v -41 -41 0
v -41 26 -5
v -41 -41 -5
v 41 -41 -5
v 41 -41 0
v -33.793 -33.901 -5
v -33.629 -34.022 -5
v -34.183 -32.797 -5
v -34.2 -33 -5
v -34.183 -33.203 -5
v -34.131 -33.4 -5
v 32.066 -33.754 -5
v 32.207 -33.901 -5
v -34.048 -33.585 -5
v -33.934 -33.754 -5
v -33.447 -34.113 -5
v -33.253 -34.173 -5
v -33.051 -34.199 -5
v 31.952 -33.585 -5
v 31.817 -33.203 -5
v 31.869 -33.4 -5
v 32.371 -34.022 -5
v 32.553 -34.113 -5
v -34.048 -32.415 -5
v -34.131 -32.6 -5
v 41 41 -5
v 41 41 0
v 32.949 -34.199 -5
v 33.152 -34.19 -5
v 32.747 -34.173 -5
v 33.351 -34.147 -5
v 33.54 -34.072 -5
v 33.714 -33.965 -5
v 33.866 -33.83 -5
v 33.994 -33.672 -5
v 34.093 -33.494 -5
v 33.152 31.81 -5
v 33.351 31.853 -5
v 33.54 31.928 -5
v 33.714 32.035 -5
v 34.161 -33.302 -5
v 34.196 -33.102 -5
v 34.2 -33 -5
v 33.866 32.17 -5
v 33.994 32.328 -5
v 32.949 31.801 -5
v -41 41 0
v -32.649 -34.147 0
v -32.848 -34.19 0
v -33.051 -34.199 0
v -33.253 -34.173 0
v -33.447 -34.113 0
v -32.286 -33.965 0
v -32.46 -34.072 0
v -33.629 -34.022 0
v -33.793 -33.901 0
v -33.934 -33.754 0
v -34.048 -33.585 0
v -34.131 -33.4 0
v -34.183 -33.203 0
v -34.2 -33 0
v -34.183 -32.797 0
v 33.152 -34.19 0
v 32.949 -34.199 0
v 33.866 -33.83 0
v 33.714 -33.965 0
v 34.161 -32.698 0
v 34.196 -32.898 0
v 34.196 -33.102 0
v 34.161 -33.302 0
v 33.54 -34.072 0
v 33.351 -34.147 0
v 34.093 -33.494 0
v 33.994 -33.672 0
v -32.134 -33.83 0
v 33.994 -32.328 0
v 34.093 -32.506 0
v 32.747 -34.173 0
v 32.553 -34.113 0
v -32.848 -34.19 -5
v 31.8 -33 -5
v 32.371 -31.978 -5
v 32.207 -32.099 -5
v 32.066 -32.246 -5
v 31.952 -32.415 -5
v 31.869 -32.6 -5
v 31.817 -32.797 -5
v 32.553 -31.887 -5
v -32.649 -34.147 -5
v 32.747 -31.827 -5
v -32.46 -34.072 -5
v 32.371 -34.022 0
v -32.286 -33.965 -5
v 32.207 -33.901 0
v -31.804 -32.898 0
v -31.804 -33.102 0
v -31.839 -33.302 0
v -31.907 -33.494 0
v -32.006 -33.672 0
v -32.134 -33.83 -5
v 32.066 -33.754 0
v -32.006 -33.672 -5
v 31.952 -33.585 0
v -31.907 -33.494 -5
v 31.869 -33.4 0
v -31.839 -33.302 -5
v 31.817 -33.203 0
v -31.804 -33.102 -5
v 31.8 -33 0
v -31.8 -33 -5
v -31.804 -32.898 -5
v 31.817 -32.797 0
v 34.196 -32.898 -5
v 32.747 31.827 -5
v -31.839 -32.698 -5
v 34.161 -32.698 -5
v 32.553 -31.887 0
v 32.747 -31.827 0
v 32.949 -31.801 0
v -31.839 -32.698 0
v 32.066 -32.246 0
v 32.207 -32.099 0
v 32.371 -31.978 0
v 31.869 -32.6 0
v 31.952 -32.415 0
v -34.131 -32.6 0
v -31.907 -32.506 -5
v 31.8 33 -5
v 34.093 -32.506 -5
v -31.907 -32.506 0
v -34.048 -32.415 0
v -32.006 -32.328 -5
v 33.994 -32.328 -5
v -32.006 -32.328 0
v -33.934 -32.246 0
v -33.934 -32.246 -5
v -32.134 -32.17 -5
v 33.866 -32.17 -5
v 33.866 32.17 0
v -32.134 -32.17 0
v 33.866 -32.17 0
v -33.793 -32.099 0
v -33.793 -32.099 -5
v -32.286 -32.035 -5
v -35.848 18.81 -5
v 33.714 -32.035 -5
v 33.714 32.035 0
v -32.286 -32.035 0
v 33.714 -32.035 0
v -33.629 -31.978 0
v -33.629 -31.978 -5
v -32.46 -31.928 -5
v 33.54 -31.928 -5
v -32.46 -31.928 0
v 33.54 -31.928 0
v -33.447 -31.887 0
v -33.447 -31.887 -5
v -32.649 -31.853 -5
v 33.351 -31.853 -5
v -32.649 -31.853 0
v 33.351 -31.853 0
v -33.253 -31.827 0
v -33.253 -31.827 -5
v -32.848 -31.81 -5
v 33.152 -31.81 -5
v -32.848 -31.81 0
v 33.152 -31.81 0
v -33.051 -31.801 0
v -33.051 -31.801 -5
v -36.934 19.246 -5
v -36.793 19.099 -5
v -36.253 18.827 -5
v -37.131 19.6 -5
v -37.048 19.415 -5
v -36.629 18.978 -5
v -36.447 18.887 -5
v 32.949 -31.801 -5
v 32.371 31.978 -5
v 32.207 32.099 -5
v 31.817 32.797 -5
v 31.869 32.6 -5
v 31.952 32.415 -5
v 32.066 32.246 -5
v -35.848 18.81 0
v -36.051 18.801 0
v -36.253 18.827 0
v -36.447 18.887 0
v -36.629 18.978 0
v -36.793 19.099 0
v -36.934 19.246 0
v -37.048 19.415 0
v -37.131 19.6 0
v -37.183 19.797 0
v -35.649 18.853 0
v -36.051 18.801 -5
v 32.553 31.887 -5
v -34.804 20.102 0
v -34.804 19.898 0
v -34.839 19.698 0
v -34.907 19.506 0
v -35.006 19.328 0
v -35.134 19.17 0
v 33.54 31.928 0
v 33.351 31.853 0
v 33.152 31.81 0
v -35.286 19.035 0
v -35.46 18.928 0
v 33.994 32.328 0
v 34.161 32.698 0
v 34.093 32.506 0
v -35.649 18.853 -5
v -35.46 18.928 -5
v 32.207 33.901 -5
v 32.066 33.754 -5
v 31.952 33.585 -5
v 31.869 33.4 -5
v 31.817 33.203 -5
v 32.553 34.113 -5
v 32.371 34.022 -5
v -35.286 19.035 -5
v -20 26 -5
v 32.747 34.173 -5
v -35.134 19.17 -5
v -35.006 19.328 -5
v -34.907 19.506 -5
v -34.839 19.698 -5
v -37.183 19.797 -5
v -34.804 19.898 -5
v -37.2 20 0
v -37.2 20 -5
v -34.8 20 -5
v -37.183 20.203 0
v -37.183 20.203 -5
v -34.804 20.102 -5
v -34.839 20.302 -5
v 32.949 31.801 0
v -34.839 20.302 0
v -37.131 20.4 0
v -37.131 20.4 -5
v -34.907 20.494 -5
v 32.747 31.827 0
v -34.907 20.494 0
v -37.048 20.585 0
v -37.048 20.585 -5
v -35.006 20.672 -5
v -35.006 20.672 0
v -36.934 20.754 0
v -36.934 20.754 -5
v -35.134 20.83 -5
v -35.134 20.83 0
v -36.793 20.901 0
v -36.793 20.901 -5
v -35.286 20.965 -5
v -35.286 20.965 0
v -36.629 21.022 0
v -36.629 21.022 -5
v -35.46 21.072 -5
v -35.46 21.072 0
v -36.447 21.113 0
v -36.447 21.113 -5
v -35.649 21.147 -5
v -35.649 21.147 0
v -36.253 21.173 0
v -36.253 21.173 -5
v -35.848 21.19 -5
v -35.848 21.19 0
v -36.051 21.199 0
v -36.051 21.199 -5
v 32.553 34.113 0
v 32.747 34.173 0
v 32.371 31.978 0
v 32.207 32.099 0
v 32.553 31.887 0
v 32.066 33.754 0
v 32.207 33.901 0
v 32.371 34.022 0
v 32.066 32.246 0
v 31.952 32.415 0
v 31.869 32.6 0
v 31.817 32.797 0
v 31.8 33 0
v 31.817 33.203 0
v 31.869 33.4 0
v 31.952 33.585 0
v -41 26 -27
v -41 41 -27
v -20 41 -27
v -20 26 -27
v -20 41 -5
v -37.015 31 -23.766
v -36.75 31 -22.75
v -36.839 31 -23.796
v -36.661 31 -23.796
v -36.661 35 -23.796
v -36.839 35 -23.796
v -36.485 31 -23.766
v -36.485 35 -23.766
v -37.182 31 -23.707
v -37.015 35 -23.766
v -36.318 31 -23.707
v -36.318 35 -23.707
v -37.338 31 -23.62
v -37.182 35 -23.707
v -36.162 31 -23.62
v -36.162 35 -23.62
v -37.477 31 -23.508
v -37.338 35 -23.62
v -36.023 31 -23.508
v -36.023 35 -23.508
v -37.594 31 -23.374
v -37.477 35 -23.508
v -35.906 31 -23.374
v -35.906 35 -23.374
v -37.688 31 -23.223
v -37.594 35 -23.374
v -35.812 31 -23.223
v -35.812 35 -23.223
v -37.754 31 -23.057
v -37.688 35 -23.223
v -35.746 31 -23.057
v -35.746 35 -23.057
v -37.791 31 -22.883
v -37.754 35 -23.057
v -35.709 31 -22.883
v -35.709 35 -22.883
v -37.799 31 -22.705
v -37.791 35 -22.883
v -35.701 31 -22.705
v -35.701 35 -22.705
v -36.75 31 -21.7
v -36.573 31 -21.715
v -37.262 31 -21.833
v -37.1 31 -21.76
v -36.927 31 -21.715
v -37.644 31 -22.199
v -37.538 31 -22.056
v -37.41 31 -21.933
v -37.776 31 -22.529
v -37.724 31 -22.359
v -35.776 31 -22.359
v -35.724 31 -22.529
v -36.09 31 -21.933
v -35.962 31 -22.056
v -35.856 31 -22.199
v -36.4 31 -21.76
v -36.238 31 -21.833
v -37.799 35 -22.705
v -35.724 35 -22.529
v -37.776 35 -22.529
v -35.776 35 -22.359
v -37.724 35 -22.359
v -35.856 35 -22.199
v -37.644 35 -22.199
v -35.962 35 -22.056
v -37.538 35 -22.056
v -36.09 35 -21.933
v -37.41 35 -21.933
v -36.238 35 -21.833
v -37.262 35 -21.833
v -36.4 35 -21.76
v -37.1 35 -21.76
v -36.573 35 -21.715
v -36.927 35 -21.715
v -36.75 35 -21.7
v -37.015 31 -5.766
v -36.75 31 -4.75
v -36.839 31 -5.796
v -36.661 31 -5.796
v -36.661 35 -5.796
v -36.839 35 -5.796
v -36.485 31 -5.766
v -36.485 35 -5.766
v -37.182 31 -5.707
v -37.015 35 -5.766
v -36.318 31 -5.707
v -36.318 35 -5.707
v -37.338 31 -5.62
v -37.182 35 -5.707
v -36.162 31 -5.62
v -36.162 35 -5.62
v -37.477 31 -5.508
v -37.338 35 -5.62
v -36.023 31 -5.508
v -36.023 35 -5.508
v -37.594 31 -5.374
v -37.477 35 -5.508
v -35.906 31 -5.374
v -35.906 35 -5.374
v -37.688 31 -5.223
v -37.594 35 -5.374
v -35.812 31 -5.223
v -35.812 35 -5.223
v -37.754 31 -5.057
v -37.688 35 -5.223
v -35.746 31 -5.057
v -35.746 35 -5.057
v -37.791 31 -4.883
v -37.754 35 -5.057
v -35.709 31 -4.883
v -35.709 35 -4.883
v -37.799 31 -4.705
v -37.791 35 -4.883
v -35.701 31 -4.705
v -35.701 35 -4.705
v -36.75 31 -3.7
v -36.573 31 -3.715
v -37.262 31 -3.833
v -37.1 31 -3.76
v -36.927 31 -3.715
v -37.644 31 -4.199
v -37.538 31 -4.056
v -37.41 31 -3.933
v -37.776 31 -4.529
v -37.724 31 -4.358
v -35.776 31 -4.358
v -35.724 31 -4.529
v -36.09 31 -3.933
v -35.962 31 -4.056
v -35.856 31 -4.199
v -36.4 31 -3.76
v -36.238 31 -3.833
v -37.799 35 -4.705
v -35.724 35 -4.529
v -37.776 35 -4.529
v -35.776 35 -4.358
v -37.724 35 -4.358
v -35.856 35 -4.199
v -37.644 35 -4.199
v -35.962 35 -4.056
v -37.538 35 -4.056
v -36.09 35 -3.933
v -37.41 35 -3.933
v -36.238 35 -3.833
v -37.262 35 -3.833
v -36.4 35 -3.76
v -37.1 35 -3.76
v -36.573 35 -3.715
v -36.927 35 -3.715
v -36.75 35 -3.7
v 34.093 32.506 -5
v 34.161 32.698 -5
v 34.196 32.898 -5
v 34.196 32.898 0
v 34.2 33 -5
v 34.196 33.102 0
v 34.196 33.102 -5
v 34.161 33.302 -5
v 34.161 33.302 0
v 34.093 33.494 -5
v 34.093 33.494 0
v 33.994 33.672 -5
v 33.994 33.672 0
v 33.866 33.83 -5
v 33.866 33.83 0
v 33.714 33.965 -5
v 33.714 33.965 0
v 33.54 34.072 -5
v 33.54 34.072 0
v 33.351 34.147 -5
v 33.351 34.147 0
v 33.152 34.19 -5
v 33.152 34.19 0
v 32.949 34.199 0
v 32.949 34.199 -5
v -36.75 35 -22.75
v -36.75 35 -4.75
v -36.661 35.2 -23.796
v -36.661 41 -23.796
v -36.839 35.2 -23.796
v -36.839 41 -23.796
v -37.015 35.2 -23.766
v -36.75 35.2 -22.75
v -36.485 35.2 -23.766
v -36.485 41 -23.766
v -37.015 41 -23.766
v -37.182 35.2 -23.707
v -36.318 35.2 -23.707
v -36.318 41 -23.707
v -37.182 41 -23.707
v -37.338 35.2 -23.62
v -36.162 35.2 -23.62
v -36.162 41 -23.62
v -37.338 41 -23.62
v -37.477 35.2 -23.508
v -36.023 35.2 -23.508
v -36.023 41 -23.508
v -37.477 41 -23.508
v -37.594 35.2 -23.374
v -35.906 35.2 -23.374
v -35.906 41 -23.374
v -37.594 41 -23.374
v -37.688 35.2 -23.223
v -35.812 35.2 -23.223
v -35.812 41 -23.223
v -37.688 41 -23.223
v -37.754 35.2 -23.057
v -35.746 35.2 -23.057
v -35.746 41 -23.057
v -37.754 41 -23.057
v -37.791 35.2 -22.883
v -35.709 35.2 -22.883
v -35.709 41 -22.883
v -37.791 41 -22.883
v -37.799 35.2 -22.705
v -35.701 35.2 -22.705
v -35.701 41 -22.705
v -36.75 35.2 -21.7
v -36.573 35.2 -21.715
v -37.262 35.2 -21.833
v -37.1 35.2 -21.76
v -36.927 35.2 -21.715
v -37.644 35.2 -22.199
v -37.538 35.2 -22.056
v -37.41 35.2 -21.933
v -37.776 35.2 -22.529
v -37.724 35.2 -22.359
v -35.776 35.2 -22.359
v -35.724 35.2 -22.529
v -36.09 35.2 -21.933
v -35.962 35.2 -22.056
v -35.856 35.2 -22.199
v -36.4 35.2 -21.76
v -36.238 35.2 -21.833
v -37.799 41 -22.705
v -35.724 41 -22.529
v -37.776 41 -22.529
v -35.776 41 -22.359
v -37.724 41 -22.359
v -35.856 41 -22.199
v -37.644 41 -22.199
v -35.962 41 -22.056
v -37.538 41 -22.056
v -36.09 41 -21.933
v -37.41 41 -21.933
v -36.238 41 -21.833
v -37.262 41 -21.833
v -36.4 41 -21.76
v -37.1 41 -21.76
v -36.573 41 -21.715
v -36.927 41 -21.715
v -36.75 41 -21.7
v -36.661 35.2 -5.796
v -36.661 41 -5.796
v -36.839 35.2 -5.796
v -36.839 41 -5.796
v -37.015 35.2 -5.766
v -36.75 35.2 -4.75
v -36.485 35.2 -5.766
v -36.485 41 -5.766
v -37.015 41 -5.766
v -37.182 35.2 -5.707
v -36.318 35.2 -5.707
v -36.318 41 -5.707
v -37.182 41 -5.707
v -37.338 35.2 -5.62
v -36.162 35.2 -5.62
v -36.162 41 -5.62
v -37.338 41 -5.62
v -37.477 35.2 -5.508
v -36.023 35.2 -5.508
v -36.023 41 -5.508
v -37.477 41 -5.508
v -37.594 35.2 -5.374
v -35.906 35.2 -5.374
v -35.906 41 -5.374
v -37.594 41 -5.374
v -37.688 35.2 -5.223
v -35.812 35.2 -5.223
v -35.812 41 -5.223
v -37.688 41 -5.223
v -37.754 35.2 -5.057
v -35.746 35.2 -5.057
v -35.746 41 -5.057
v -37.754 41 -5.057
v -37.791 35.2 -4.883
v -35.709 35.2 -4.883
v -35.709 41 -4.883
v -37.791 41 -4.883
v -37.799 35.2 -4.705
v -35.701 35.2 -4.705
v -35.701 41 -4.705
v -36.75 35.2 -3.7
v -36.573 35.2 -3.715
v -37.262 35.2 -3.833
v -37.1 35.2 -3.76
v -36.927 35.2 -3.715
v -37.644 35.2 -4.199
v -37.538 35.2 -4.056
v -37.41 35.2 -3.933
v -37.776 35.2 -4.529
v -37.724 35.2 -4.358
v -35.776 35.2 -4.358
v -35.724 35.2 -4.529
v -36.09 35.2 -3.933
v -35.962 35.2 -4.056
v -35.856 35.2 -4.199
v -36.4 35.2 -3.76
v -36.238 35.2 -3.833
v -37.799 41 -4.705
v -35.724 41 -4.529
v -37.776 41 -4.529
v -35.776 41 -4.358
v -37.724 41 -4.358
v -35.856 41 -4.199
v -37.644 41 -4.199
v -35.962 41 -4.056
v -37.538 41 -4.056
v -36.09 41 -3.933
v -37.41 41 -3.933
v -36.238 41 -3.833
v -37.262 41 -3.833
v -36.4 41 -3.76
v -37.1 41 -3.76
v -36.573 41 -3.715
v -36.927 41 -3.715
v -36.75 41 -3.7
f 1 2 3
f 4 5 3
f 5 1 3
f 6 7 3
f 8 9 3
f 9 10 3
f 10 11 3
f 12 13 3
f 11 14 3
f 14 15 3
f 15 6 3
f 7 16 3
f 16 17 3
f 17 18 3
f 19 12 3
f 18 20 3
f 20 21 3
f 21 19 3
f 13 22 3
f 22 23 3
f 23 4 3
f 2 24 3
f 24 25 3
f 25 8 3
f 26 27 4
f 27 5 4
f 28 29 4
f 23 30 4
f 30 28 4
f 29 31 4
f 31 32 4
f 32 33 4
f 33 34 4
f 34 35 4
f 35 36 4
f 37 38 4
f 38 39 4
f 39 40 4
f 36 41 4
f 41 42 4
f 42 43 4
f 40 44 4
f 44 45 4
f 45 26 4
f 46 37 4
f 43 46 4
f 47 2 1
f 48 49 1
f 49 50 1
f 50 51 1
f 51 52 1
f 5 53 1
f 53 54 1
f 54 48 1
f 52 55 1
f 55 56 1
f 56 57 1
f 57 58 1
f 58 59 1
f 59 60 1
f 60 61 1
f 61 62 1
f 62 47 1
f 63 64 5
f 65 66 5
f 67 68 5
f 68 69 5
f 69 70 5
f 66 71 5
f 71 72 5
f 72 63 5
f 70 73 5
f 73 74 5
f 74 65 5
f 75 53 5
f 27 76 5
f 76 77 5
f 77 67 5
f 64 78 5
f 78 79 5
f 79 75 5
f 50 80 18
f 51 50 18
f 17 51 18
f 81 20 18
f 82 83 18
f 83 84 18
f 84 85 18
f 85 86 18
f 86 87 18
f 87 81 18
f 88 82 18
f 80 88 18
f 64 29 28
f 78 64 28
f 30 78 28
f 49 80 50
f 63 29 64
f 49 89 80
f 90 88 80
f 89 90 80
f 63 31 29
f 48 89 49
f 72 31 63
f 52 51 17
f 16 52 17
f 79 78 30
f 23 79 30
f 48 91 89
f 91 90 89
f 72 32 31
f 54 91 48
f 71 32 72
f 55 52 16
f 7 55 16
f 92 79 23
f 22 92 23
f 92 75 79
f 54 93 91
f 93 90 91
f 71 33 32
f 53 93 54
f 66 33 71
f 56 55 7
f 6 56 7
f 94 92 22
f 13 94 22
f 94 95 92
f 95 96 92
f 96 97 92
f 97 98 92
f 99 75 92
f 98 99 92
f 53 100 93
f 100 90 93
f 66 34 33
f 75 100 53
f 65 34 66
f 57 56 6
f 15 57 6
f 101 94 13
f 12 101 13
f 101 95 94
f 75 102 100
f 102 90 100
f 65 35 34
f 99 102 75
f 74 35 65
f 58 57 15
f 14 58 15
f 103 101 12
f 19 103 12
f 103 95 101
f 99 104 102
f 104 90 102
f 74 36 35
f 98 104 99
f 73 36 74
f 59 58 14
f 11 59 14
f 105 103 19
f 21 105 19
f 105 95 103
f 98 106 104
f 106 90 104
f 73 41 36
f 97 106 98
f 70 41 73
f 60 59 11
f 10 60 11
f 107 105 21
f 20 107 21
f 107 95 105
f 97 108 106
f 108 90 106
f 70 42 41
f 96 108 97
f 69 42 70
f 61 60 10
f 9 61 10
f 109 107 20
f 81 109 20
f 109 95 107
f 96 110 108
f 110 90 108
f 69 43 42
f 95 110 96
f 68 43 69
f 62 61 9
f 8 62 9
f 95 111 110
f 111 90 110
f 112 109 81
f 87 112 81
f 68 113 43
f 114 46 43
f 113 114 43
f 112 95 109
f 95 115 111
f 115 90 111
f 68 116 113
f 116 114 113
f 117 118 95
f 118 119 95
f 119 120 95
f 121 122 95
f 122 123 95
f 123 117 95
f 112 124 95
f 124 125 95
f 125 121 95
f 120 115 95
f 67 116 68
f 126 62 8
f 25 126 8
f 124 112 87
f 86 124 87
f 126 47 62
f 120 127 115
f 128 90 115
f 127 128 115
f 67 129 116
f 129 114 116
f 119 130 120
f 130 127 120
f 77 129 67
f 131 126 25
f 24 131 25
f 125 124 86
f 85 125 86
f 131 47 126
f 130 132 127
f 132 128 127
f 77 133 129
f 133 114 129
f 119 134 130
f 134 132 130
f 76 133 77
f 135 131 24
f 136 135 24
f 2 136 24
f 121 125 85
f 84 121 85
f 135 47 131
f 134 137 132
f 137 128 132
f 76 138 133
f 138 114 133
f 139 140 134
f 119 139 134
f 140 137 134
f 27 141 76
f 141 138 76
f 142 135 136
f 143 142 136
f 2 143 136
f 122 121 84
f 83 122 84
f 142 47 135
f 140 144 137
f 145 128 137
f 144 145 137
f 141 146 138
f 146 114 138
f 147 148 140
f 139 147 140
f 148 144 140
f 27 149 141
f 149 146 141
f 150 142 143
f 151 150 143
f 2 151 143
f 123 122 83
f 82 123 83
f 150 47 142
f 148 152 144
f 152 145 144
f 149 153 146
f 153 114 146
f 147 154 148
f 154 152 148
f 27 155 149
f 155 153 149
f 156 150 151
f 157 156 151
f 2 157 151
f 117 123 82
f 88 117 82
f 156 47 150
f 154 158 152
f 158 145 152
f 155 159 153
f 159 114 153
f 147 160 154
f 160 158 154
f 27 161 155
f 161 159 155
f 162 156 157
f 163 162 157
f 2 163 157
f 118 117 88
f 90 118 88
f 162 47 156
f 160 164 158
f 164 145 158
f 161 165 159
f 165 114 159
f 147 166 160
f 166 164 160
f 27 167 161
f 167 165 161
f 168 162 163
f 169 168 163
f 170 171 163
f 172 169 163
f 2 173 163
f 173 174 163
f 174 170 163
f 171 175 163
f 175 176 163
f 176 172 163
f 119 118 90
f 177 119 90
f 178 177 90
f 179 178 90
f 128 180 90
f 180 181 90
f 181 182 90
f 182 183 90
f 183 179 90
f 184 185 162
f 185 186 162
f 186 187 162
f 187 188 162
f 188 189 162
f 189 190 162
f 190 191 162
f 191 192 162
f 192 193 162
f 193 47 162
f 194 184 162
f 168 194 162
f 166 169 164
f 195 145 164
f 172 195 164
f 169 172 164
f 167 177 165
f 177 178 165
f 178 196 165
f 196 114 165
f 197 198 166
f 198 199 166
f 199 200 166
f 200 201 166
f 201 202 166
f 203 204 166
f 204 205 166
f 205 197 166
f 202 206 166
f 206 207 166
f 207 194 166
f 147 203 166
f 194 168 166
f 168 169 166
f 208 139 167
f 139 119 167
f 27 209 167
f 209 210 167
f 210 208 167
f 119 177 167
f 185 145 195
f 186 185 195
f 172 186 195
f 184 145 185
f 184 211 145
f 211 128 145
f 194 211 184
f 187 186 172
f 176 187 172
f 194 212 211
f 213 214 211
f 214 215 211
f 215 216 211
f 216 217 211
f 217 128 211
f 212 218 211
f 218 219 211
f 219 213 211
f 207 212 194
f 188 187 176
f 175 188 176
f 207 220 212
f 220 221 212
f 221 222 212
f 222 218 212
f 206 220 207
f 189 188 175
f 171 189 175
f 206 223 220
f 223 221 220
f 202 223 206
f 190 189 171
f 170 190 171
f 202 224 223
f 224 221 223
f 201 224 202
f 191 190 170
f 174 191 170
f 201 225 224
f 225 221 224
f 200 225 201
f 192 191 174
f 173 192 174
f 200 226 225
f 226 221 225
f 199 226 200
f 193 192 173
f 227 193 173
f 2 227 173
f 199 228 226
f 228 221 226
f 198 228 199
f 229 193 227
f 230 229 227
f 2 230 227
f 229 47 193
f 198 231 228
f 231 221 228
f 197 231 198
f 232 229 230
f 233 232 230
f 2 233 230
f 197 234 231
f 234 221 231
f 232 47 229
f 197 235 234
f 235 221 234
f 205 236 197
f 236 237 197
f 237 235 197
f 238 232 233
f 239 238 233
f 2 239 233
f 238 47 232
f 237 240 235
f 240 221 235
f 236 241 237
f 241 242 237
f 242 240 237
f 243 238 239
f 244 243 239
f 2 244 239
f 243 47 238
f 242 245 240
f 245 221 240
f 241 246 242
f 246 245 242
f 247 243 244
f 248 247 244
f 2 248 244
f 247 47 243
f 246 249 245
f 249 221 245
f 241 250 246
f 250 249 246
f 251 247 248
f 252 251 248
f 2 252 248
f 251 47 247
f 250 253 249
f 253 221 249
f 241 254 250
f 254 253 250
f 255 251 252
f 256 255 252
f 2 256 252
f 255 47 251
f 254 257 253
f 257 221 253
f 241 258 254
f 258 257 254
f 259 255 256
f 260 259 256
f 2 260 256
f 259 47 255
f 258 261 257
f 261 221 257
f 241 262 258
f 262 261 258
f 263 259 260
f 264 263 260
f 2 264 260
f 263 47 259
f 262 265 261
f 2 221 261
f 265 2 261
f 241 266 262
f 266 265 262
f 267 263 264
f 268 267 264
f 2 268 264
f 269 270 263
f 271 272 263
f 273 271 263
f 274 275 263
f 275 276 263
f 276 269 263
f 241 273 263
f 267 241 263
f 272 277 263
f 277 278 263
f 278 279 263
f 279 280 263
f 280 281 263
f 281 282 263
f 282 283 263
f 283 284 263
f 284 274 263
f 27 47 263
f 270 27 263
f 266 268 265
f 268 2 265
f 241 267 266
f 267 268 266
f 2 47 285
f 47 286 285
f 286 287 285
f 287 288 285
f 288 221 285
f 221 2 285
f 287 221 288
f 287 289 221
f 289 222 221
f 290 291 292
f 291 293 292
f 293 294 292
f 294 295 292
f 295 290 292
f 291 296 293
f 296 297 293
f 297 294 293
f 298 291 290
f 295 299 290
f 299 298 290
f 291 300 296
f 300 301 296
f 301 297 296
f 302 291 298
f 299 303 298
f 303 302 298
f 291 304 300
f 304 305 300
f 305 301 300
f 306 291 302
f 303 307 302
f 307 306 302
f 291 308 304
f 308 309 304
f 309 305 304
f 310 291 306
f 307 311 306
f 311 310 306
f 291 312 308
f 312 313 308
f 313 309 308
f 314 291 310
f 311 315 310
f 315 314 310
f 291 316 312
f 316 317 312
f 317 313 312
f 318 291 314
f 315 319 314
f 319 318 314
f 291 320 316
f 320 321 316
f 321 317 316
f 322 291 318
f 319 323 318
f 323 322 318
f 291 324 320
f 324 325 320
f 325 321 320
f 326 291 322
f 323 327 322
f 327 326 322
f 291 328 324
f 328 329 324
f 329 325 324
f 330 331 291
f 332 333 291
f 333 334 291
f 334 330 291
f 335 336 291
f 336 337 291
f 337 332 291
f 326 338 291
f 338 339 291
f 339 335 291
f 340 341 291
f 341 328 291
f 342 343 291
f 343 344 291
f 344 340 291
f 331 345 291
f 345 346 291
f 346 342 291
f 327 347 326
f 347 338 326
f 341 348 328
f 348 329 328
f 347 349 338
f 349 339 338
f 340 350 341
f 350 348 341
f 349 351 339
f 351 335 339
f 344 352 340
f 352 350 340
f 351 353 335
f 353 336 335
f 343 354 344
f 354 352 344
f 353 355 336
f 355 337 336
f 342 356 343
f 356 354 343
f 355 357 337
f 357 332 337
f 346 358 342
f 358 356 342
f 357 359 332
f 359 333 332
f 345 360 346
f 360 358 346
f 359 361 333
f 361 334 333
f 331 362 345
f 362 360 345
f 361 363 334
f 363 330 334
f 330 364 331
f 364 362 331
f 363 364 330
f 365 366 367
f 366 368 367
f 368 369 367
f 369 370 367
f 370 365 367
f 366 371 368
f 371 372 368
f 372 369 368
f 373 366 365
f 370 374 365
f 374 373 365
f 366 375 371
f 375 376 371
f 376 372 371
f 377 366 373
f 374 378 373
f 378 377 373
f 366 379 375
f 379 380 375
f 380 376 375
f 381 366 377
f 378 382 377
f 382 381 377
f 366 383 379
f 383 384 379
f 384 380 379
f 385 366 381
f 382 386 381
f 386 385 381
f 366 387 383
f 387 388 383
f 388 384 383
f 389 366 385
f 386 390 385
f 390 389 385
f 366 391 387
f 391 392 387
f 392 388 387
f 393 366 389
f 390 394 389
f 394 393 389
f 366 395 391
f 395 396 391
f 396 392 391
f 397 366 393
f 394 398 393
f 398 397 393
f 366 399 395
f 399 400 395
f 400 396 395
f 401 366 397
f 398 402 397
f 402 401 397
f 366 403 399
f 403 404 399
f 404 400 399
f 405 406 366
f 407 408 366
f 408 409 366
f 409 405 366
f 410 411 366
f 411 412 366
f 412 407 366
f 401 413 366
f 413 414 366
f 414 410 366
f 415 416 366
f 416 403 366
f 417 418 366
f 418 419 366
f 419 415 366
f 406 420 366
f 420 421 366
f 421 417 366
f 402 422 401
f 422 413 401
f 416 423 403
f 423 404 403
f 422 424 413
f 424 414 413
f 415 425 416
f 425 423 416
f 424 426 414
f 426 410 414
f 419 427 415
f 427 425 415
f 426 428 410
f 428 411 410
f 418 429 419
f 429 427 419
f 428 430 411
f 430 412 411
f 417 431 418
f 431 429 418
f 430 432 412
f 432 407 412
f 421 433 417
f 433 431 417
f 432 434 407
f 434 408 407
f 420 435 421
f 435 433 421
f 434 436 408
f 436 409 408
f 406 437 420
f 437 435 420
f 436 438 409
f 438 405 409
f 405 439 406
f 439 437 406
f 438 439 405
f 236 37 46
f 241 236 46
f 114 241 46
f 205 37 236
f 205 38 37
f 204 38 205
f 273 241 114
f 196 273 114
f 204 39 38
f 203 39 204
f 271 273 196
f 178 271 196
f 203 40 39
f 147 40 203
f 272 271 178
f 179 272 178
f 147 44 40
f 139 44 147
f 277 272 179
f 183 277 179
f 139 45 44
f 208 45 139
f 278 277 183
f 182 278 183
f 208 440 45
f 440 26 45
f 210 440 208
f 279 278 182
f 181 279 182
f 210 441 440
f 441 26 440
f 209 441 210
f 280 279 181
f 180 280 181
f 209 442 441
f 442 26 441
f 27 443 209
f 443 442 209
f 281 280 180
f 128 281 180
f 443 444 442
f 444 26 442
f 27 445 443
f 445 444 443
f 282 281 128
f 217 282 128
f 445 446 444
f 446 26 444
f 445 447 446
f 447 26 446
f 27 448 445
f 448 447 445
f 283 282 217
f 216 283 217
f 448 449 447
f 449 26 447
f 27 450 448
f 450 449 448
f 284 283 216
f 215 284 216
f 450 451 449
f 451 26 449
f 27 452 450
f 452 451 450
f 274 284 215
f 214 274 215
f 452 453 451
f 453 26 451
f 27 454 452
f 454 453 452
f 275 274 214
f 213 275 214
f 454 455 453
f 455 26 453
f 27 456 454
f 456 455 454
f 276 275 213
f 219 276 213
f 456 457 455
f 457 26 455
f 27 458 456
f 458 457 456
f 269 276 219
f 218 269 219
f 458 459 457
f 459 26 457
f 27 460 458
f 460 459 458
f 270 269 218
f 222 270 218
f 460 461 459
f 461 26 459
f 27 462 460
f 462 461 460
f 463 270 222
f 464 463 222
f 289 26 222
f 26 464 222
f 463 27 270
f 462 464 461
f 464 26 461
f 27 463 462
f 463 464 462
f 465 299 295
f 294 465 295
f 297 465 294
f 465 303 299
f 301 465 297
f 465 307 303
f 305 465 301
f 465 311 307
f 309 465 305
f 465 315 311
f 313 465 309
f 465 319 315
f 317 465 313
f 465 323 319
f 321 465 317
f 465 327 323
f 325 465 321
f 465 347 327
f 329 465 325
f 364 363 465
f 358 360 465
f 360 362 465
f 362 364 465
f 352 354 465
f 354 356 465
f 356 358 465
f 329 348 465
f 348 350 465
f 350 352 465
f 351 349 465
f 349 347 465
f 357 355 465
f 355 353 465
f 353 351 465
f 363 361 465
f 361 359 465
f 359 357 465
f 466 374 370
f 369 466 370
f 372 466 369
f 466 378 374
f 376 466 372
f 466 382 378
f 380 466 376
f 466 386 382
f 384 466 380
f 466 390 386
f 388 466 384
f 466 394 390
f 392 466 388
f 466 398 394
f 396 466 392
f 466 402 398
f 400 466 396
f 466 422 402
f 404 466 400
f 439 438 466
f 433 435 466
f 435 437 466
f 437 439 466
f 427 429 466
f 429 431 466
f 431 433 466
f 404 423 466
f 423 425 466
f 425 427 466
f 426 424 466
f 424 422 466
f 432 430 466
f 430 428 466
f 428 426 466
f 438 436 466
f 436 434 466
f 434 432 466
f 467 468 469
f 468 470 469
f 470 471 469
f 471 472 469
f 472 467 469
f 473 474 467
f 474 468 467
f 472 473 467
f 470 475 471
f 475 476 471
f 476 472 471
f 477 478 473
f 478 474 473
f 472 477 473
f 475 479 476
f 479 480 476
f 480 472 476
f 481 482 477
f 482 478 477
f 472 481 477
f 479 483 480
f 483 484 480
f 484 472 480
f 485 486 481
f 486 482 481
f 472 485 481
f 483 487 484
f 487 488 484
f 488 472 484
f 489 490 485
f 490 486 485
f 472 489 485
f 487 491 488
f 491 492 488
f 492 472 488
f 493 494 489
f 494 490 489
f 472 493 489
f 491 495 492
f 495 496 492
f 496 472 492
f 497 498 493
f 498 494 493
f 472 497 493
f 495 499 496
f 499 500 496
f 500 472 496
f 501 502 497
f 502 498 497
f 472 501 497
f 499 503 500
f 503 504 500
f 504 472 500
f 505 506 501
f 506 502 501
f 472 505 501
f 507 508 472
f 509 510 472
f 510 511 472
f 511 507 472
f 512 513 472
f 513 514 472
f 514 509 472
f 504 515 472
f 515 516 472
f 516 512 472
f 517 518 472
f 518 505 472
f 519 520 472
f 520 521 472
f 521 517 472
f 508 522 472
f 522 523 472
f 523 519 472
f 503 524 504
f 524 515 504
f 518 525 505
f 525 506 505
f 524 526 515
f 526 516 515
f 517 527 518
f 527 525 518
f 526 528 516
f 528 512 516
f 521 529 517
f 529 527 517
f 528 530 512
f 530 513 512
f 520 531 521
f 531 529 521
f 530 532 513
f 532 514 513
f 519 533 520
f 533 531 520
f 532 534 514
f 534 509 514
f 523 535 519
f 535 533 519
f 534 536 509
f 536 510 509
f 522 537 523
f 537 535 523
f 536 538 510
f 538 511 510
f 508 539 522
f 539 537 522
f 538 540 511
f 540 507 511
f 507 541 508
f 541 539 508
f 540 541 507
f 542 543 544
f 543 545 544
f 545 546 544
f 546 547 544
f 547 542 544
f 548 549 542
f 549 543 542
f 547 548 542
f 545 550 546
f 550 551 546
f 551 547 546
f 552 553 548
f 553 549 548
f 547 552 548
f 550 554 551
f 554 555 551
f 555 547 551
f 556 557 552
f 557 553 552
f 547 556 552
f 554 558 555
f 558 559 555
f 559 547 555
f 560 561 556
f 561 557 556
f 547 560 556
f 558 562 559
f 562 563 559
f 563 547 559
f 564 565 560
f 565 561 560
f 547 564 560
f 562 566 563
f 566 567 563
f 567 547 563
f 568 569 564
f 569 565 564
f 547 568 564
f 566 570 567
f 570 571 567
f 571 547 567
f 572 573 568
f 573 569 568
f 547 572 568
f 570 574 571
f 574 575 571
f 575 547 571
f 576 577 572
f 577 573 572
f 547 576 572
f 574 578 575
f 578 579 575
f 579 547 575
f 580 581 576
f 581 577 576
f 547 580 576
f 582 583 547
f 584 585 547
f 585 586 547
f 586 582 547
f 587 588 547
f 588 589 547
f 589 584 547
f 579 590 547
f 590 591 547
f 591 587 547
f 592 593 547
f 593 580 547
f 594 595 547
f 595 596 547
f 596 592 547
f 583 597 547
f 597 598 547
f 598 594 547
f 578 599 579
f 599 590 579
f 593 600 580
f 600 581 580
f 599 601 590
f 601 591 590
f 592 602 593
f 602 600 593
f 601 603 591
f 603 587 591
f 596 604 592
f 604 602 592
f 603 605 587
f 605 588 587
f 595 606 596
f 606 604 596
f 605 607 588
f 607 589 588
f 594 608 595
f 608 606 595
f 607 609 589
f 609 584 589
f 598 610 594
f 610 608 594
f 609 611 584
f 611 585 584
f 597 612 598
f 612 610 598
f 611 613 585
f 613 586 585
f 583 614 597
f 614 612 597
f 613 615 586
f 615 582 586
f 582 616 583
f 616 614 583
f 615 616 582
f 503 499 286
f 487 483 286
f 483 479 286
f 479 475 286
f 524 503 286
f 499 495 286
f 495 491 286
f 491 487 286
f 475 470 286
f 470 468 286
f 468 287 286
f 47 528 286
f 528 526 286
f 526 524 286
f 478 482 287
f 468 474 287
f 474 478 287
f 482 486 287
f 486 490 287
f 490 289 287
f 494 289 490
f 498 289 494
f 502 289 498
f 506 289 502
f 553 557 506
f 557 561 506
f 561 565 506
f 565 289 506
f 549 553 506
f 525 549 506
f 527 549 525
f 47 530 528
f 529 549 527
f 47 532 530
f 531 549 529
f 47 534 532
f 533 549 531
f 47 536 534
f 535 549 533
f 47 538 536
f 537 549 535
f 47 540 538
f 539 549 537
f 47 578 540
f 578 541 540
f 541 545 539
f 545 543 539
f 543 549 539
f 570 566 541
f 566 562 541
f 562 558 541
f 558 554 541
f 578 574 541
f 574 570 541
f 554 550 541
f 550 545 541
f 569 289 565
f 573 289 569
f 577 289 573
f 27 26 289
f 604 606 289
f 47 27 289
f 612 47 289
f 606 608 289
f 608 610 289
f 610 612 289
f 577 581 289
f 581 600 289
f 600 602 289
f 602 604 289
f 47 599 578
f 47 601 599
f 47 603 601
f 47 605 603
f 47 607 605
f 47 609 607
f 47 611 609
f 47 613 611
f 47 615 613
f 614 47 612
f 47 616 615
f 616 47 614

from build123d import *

# Parameters (mm, degrees)
SKETCH_1_W           = 82
SKETCH_1_H           = 82
SKETCH_1_R           = 35.5
EXTRUDE_1_DEPTH      = 245
SKETCH_2_W           = 82
SKETCH_2_H           = 82
EXTRUDE_2_DEPTH      = 27
SKETCH_3_W           = 8
SKETCH_3_H           = 20
CUT_EXTRUDE_1_DEPTH  = 245
SKETCH_4_R           = 4
CUT_EXTRUDE_2_DEPTH  = 20
FILLET_2_R           = 3
FILLET_3_R           = 3
FILLET_4_R           = 3
FILLET_5_R           = 3
SKETCH_5_R           = 1.05
CUT_EXTRUDE_3_DEPTH  = 10
EXTRUDE_START        = 0.2
SKETCH_6_R           = 1.05
EXTRUDE_3_DEPTH      = 0.2
CUT_EXTRUDE_5_REACH  = 263.591
SKETCH_7_W           = 20
SKETCH_7_H           = 65
CUT_EXTRUDE_6_REACH  = 263.591
SKETCH_8_W           = 41
SKETCH_8_H           = 20
SKETCH_9_R           = 1.2
CUT_EXTRUDE_7_DEPTH  = 10
CUT_EXTRUDE_8_REACH  = 263.591
SKETCH_10_W          = 245
SKETCH_10_H          = 82
SKETCH_11_W          = 20
SKETCH_11_H          = 17
CUT_EXTRUDE_9_DEPTH  = 20
CUT_EXTRUDE_10_DEPTH = 2
SKETCH_13_W          = 21
SKETCH_13_H          = 22
CUT_EXTRUDE_11_DEPTH = 2


with BuildPart() as part:
    # 草圖1 → 填料-伸長1 (new body)
    with BuildSketch(Plane.XY):
        Rectangle(SKETCH_1_W, SKETCH_1_H)
        Circle(SKETCH_1_R, mode=Mode.SUBTRACT)
    extrude(amount=EXTRUDE_1_DEPTH)

    # 草圖2 → 填料-伸長2 (add)
    with BuildSketch(Plane(origin=(0, 0, 0), x_dir=(-1, 0, 0), z_dir=(0, 0, -1))):
        Rectangle(SKETCH_2_W, SKETCH_2_H)
    extrude(amount=EXTRUDE_2_DEPTH)

    # 草圖3 → 除料-伸長1 (cut)
    with BuildSketch(Plane.XY.offset(245)):
        with Locations((-37, 0)):
            Rectangle(SKETCH_3_W, SKETCH_3_H)
    extrude(amount=-CUT_EXTRUDE_1_DEPTH, mode=Mode.SUBTRACT)

    # 草圖4 → 除料-伸長2 (cut)
    with BuildSketch(Plane.XY.offset(245)):
        with Locations((-32.9, 33)):
            Circle(SKETCH_4_R)
        with Locations((33.1, 32.9)):
            Circle(SKETCH_4_R)
        with Locations((33, -33.1)):
            Circle(SKETCH_4_R)
        with Locations((-33, -33)):
            Circle(SKETCH_4_R)
    extrude(amount=-CUT_EXTRUDE_2_DEPTH, mode=Mode.SUBTRACT)

    # 圓角2
    fillet_2_edges = [part.edges().sort_by_distance(p)[0] for p in [
        (-36.9, 33, 225),
    ]]
    fillet(fillet_2_edges, radius=FILLET_2_R)

    # 圓角3
    fillet_3_edges = [part.edges().sort_by_distance(p)[0] for p in [
        (29.1, 32.9, 225),
    ]]
    fillet(fillet_3_edges, radius=FILLET_3_R)

    # 圓角4
    fillet_4_edges = [part.edges().sort_by_distance(p)[0] for p in [
        (-37, -33, 225),
    ]]
    fillet(fillet_4_edges, radius=FILLET_4_R)

    # 圓角5
    fillet_5_edges = [part.edges().sort_by_distance(p)[0] for p in [
        (29, -33.1, 225),
    ]]
    fillet(fillet_5_edges, radius=FILLET_5_R)

    # 草圖5 → 除料-伸長3 (cut)
    with BuildSketch(Plane(origin=(0, 41, 0), x_dir=(1, 0, 0), z_dir=(0, 1, 0))):
        with Locations(Location((-36.75, 22.75, 0), (0, 0, 270))):
            Circle(SKETCH_5_R)
        with Locations(Location((-36.75, 4.75, 0), (0, 0, 270))):
            Circle(SKETCH_5_R)
    extrude(amount=-CUT_EXTRUDE_3_DEPTH, mode=Mode.SUBTRACT)

    # 草圖6 → 填料-伸長3 (add)
    with BuildSketch(Plane(origin=(0, 35, 0), x_dir=(1, 0, 0), z_dir=(0, 1, 0)).offset(EXTRUDE_START)):
        with Locations(Location((-36.75, 22.75, 0), (0, 0, 270))):
            Circle(SKETCH_6_R)
        with Locations(Location((-36.75, 4.75, 0), (0, 0, 270))):
            Circle(SKETCH_6_R)
    extrude(amount=-EXTRUDE_3_DEPTH)

    # 草圖7 → 除料-伸長5 (cut, up to next)
    with BuildSketch(Plane(origin=(-41, 0, 0), x_dir=(0, 0, -1), z_dir=(1, 0, 0)), mode=Mode.PRIVATE) as cut_extrude_5_sk1:
        with Locations((17, -8.5)):
            Rectangle(SKETCH_7_W, SKETCH_7_H)
    cut_extrude_5_tool1 = extrude(cut_extrude_5_sk1.sketch, amount=CUT_EXTRUDE_5_REACH, mode=Mode.PRIVATE) & part.part
    add(cut_extrude_5_tool1.solids().sort_by_distance((-41, -8.5, -17))[0], mode=Mode.SUBTRACT)

    # 草圖8 → 除料-伸長6 (cut, up to next)
    with BuildSketch(Plane(origin=(0, 41, 0), x_dir=(1, 0, 0), z_dir=(0, 1, 0)), mode=Mode.PRIVATE) as cut_extrude_6_sk1:
        with Locations((20.5, 17)):
            Rectangle(SKETCH_8_W, SKETCH_8_H)
    cut_extrude_6_tool1 = extrude(cut_extrude_6_sk1.sketch, amount=-CUT_EXTRUDE_6_REACH, mode=Mode.PRIVATE) & part.part
    add(cut_extrude_6_tool1.solids().sort_by_distance((20.5, 41, -17))[0], mode=Mode.SUBTRACT)

    # 草圖9 → 除料-伸長7 (cut)
    with BuildSketch(Plane(origin=(0, 0, -7), x_dir=(-1, 0, 0), z_dir=(0, 0, -1))):
        with Locations((-33, 33)):
            Circle(SKETCH_9_R)
        with Locations((-33, -33)):
            Circle(SKETCH_9_R)
        with Locations((33, -33)):
            Circle(SKETCH_9_R)
        with Locations((36, 20)):
            Circle(SKETCH_9_R)
    extrude(amount=-CUT_EXTRUDE_7_DEPTH, mode=Mode.SUBTRACT)

    # 草圖10 → 除料-伸長8 (cut, up to next)
    with BuildSketch(Plane.ZY.offset(41), mode=Mode.PRIVATE) as cut_extrude_8_sk1:
        with Locations((122.5, 0)):
            Rectangle(SKETCH_10_W, SKETCH_10_H)
    cut_extrude_8_tool1 = extrude(cut_extrude_8_sk1.sketch, amount=-CUT_EXTRUDE_8_REACH, mode=Mode.PRIVATE) & part.part
    add(cut_extrude_8_tool1.solids().sort_by_distance((-41, 0, 122.5))[0], mode=Mode.SUBTRACT)

    # 草圖11 → 除料-伸長9 (cut)
    with BuildSketch(Plane(origin=(0, 0, 0), x_dir=(0, 0, -1), z_dir=(1, 0, 0))):
        with Locations((17, 32.5)):
            Rectangle(SKETCH_11_W, SKETCH_11_H)
    extrude(amount=-CUT_EXTRUDE_9_DEPTH, mode=Mode.SUBTRACT)

    # 草圖12 → 除料-伸長10 (cut)
    with BuildSketch(Plane(origin=(0, 0, -7), x_dir=(-1, 0, 0), z_dir=(0, 0, -1))):
        Polygon((20, 41), (20, 24), (41, 24), (41, -41), (-41, -41), (-41, 41), align=None)
    extrude(amount=-CUT_EXTRUDE_10_DEPTH, mode=Mode.SUBTRACT)

    # 草圖13 → 除料-伸長11 (cut)
    with BuildSketch(Plane.XZ.offset(-24)):
        with Locations((-30.5, -16)):
            Rectangle(SKETCH_13_W, SKETCH_13_H)
    extrude(amount=-CUT_EXTRUDE_11_DEPTH, mode=Mode.SUBTRACT)


solid = part.part
